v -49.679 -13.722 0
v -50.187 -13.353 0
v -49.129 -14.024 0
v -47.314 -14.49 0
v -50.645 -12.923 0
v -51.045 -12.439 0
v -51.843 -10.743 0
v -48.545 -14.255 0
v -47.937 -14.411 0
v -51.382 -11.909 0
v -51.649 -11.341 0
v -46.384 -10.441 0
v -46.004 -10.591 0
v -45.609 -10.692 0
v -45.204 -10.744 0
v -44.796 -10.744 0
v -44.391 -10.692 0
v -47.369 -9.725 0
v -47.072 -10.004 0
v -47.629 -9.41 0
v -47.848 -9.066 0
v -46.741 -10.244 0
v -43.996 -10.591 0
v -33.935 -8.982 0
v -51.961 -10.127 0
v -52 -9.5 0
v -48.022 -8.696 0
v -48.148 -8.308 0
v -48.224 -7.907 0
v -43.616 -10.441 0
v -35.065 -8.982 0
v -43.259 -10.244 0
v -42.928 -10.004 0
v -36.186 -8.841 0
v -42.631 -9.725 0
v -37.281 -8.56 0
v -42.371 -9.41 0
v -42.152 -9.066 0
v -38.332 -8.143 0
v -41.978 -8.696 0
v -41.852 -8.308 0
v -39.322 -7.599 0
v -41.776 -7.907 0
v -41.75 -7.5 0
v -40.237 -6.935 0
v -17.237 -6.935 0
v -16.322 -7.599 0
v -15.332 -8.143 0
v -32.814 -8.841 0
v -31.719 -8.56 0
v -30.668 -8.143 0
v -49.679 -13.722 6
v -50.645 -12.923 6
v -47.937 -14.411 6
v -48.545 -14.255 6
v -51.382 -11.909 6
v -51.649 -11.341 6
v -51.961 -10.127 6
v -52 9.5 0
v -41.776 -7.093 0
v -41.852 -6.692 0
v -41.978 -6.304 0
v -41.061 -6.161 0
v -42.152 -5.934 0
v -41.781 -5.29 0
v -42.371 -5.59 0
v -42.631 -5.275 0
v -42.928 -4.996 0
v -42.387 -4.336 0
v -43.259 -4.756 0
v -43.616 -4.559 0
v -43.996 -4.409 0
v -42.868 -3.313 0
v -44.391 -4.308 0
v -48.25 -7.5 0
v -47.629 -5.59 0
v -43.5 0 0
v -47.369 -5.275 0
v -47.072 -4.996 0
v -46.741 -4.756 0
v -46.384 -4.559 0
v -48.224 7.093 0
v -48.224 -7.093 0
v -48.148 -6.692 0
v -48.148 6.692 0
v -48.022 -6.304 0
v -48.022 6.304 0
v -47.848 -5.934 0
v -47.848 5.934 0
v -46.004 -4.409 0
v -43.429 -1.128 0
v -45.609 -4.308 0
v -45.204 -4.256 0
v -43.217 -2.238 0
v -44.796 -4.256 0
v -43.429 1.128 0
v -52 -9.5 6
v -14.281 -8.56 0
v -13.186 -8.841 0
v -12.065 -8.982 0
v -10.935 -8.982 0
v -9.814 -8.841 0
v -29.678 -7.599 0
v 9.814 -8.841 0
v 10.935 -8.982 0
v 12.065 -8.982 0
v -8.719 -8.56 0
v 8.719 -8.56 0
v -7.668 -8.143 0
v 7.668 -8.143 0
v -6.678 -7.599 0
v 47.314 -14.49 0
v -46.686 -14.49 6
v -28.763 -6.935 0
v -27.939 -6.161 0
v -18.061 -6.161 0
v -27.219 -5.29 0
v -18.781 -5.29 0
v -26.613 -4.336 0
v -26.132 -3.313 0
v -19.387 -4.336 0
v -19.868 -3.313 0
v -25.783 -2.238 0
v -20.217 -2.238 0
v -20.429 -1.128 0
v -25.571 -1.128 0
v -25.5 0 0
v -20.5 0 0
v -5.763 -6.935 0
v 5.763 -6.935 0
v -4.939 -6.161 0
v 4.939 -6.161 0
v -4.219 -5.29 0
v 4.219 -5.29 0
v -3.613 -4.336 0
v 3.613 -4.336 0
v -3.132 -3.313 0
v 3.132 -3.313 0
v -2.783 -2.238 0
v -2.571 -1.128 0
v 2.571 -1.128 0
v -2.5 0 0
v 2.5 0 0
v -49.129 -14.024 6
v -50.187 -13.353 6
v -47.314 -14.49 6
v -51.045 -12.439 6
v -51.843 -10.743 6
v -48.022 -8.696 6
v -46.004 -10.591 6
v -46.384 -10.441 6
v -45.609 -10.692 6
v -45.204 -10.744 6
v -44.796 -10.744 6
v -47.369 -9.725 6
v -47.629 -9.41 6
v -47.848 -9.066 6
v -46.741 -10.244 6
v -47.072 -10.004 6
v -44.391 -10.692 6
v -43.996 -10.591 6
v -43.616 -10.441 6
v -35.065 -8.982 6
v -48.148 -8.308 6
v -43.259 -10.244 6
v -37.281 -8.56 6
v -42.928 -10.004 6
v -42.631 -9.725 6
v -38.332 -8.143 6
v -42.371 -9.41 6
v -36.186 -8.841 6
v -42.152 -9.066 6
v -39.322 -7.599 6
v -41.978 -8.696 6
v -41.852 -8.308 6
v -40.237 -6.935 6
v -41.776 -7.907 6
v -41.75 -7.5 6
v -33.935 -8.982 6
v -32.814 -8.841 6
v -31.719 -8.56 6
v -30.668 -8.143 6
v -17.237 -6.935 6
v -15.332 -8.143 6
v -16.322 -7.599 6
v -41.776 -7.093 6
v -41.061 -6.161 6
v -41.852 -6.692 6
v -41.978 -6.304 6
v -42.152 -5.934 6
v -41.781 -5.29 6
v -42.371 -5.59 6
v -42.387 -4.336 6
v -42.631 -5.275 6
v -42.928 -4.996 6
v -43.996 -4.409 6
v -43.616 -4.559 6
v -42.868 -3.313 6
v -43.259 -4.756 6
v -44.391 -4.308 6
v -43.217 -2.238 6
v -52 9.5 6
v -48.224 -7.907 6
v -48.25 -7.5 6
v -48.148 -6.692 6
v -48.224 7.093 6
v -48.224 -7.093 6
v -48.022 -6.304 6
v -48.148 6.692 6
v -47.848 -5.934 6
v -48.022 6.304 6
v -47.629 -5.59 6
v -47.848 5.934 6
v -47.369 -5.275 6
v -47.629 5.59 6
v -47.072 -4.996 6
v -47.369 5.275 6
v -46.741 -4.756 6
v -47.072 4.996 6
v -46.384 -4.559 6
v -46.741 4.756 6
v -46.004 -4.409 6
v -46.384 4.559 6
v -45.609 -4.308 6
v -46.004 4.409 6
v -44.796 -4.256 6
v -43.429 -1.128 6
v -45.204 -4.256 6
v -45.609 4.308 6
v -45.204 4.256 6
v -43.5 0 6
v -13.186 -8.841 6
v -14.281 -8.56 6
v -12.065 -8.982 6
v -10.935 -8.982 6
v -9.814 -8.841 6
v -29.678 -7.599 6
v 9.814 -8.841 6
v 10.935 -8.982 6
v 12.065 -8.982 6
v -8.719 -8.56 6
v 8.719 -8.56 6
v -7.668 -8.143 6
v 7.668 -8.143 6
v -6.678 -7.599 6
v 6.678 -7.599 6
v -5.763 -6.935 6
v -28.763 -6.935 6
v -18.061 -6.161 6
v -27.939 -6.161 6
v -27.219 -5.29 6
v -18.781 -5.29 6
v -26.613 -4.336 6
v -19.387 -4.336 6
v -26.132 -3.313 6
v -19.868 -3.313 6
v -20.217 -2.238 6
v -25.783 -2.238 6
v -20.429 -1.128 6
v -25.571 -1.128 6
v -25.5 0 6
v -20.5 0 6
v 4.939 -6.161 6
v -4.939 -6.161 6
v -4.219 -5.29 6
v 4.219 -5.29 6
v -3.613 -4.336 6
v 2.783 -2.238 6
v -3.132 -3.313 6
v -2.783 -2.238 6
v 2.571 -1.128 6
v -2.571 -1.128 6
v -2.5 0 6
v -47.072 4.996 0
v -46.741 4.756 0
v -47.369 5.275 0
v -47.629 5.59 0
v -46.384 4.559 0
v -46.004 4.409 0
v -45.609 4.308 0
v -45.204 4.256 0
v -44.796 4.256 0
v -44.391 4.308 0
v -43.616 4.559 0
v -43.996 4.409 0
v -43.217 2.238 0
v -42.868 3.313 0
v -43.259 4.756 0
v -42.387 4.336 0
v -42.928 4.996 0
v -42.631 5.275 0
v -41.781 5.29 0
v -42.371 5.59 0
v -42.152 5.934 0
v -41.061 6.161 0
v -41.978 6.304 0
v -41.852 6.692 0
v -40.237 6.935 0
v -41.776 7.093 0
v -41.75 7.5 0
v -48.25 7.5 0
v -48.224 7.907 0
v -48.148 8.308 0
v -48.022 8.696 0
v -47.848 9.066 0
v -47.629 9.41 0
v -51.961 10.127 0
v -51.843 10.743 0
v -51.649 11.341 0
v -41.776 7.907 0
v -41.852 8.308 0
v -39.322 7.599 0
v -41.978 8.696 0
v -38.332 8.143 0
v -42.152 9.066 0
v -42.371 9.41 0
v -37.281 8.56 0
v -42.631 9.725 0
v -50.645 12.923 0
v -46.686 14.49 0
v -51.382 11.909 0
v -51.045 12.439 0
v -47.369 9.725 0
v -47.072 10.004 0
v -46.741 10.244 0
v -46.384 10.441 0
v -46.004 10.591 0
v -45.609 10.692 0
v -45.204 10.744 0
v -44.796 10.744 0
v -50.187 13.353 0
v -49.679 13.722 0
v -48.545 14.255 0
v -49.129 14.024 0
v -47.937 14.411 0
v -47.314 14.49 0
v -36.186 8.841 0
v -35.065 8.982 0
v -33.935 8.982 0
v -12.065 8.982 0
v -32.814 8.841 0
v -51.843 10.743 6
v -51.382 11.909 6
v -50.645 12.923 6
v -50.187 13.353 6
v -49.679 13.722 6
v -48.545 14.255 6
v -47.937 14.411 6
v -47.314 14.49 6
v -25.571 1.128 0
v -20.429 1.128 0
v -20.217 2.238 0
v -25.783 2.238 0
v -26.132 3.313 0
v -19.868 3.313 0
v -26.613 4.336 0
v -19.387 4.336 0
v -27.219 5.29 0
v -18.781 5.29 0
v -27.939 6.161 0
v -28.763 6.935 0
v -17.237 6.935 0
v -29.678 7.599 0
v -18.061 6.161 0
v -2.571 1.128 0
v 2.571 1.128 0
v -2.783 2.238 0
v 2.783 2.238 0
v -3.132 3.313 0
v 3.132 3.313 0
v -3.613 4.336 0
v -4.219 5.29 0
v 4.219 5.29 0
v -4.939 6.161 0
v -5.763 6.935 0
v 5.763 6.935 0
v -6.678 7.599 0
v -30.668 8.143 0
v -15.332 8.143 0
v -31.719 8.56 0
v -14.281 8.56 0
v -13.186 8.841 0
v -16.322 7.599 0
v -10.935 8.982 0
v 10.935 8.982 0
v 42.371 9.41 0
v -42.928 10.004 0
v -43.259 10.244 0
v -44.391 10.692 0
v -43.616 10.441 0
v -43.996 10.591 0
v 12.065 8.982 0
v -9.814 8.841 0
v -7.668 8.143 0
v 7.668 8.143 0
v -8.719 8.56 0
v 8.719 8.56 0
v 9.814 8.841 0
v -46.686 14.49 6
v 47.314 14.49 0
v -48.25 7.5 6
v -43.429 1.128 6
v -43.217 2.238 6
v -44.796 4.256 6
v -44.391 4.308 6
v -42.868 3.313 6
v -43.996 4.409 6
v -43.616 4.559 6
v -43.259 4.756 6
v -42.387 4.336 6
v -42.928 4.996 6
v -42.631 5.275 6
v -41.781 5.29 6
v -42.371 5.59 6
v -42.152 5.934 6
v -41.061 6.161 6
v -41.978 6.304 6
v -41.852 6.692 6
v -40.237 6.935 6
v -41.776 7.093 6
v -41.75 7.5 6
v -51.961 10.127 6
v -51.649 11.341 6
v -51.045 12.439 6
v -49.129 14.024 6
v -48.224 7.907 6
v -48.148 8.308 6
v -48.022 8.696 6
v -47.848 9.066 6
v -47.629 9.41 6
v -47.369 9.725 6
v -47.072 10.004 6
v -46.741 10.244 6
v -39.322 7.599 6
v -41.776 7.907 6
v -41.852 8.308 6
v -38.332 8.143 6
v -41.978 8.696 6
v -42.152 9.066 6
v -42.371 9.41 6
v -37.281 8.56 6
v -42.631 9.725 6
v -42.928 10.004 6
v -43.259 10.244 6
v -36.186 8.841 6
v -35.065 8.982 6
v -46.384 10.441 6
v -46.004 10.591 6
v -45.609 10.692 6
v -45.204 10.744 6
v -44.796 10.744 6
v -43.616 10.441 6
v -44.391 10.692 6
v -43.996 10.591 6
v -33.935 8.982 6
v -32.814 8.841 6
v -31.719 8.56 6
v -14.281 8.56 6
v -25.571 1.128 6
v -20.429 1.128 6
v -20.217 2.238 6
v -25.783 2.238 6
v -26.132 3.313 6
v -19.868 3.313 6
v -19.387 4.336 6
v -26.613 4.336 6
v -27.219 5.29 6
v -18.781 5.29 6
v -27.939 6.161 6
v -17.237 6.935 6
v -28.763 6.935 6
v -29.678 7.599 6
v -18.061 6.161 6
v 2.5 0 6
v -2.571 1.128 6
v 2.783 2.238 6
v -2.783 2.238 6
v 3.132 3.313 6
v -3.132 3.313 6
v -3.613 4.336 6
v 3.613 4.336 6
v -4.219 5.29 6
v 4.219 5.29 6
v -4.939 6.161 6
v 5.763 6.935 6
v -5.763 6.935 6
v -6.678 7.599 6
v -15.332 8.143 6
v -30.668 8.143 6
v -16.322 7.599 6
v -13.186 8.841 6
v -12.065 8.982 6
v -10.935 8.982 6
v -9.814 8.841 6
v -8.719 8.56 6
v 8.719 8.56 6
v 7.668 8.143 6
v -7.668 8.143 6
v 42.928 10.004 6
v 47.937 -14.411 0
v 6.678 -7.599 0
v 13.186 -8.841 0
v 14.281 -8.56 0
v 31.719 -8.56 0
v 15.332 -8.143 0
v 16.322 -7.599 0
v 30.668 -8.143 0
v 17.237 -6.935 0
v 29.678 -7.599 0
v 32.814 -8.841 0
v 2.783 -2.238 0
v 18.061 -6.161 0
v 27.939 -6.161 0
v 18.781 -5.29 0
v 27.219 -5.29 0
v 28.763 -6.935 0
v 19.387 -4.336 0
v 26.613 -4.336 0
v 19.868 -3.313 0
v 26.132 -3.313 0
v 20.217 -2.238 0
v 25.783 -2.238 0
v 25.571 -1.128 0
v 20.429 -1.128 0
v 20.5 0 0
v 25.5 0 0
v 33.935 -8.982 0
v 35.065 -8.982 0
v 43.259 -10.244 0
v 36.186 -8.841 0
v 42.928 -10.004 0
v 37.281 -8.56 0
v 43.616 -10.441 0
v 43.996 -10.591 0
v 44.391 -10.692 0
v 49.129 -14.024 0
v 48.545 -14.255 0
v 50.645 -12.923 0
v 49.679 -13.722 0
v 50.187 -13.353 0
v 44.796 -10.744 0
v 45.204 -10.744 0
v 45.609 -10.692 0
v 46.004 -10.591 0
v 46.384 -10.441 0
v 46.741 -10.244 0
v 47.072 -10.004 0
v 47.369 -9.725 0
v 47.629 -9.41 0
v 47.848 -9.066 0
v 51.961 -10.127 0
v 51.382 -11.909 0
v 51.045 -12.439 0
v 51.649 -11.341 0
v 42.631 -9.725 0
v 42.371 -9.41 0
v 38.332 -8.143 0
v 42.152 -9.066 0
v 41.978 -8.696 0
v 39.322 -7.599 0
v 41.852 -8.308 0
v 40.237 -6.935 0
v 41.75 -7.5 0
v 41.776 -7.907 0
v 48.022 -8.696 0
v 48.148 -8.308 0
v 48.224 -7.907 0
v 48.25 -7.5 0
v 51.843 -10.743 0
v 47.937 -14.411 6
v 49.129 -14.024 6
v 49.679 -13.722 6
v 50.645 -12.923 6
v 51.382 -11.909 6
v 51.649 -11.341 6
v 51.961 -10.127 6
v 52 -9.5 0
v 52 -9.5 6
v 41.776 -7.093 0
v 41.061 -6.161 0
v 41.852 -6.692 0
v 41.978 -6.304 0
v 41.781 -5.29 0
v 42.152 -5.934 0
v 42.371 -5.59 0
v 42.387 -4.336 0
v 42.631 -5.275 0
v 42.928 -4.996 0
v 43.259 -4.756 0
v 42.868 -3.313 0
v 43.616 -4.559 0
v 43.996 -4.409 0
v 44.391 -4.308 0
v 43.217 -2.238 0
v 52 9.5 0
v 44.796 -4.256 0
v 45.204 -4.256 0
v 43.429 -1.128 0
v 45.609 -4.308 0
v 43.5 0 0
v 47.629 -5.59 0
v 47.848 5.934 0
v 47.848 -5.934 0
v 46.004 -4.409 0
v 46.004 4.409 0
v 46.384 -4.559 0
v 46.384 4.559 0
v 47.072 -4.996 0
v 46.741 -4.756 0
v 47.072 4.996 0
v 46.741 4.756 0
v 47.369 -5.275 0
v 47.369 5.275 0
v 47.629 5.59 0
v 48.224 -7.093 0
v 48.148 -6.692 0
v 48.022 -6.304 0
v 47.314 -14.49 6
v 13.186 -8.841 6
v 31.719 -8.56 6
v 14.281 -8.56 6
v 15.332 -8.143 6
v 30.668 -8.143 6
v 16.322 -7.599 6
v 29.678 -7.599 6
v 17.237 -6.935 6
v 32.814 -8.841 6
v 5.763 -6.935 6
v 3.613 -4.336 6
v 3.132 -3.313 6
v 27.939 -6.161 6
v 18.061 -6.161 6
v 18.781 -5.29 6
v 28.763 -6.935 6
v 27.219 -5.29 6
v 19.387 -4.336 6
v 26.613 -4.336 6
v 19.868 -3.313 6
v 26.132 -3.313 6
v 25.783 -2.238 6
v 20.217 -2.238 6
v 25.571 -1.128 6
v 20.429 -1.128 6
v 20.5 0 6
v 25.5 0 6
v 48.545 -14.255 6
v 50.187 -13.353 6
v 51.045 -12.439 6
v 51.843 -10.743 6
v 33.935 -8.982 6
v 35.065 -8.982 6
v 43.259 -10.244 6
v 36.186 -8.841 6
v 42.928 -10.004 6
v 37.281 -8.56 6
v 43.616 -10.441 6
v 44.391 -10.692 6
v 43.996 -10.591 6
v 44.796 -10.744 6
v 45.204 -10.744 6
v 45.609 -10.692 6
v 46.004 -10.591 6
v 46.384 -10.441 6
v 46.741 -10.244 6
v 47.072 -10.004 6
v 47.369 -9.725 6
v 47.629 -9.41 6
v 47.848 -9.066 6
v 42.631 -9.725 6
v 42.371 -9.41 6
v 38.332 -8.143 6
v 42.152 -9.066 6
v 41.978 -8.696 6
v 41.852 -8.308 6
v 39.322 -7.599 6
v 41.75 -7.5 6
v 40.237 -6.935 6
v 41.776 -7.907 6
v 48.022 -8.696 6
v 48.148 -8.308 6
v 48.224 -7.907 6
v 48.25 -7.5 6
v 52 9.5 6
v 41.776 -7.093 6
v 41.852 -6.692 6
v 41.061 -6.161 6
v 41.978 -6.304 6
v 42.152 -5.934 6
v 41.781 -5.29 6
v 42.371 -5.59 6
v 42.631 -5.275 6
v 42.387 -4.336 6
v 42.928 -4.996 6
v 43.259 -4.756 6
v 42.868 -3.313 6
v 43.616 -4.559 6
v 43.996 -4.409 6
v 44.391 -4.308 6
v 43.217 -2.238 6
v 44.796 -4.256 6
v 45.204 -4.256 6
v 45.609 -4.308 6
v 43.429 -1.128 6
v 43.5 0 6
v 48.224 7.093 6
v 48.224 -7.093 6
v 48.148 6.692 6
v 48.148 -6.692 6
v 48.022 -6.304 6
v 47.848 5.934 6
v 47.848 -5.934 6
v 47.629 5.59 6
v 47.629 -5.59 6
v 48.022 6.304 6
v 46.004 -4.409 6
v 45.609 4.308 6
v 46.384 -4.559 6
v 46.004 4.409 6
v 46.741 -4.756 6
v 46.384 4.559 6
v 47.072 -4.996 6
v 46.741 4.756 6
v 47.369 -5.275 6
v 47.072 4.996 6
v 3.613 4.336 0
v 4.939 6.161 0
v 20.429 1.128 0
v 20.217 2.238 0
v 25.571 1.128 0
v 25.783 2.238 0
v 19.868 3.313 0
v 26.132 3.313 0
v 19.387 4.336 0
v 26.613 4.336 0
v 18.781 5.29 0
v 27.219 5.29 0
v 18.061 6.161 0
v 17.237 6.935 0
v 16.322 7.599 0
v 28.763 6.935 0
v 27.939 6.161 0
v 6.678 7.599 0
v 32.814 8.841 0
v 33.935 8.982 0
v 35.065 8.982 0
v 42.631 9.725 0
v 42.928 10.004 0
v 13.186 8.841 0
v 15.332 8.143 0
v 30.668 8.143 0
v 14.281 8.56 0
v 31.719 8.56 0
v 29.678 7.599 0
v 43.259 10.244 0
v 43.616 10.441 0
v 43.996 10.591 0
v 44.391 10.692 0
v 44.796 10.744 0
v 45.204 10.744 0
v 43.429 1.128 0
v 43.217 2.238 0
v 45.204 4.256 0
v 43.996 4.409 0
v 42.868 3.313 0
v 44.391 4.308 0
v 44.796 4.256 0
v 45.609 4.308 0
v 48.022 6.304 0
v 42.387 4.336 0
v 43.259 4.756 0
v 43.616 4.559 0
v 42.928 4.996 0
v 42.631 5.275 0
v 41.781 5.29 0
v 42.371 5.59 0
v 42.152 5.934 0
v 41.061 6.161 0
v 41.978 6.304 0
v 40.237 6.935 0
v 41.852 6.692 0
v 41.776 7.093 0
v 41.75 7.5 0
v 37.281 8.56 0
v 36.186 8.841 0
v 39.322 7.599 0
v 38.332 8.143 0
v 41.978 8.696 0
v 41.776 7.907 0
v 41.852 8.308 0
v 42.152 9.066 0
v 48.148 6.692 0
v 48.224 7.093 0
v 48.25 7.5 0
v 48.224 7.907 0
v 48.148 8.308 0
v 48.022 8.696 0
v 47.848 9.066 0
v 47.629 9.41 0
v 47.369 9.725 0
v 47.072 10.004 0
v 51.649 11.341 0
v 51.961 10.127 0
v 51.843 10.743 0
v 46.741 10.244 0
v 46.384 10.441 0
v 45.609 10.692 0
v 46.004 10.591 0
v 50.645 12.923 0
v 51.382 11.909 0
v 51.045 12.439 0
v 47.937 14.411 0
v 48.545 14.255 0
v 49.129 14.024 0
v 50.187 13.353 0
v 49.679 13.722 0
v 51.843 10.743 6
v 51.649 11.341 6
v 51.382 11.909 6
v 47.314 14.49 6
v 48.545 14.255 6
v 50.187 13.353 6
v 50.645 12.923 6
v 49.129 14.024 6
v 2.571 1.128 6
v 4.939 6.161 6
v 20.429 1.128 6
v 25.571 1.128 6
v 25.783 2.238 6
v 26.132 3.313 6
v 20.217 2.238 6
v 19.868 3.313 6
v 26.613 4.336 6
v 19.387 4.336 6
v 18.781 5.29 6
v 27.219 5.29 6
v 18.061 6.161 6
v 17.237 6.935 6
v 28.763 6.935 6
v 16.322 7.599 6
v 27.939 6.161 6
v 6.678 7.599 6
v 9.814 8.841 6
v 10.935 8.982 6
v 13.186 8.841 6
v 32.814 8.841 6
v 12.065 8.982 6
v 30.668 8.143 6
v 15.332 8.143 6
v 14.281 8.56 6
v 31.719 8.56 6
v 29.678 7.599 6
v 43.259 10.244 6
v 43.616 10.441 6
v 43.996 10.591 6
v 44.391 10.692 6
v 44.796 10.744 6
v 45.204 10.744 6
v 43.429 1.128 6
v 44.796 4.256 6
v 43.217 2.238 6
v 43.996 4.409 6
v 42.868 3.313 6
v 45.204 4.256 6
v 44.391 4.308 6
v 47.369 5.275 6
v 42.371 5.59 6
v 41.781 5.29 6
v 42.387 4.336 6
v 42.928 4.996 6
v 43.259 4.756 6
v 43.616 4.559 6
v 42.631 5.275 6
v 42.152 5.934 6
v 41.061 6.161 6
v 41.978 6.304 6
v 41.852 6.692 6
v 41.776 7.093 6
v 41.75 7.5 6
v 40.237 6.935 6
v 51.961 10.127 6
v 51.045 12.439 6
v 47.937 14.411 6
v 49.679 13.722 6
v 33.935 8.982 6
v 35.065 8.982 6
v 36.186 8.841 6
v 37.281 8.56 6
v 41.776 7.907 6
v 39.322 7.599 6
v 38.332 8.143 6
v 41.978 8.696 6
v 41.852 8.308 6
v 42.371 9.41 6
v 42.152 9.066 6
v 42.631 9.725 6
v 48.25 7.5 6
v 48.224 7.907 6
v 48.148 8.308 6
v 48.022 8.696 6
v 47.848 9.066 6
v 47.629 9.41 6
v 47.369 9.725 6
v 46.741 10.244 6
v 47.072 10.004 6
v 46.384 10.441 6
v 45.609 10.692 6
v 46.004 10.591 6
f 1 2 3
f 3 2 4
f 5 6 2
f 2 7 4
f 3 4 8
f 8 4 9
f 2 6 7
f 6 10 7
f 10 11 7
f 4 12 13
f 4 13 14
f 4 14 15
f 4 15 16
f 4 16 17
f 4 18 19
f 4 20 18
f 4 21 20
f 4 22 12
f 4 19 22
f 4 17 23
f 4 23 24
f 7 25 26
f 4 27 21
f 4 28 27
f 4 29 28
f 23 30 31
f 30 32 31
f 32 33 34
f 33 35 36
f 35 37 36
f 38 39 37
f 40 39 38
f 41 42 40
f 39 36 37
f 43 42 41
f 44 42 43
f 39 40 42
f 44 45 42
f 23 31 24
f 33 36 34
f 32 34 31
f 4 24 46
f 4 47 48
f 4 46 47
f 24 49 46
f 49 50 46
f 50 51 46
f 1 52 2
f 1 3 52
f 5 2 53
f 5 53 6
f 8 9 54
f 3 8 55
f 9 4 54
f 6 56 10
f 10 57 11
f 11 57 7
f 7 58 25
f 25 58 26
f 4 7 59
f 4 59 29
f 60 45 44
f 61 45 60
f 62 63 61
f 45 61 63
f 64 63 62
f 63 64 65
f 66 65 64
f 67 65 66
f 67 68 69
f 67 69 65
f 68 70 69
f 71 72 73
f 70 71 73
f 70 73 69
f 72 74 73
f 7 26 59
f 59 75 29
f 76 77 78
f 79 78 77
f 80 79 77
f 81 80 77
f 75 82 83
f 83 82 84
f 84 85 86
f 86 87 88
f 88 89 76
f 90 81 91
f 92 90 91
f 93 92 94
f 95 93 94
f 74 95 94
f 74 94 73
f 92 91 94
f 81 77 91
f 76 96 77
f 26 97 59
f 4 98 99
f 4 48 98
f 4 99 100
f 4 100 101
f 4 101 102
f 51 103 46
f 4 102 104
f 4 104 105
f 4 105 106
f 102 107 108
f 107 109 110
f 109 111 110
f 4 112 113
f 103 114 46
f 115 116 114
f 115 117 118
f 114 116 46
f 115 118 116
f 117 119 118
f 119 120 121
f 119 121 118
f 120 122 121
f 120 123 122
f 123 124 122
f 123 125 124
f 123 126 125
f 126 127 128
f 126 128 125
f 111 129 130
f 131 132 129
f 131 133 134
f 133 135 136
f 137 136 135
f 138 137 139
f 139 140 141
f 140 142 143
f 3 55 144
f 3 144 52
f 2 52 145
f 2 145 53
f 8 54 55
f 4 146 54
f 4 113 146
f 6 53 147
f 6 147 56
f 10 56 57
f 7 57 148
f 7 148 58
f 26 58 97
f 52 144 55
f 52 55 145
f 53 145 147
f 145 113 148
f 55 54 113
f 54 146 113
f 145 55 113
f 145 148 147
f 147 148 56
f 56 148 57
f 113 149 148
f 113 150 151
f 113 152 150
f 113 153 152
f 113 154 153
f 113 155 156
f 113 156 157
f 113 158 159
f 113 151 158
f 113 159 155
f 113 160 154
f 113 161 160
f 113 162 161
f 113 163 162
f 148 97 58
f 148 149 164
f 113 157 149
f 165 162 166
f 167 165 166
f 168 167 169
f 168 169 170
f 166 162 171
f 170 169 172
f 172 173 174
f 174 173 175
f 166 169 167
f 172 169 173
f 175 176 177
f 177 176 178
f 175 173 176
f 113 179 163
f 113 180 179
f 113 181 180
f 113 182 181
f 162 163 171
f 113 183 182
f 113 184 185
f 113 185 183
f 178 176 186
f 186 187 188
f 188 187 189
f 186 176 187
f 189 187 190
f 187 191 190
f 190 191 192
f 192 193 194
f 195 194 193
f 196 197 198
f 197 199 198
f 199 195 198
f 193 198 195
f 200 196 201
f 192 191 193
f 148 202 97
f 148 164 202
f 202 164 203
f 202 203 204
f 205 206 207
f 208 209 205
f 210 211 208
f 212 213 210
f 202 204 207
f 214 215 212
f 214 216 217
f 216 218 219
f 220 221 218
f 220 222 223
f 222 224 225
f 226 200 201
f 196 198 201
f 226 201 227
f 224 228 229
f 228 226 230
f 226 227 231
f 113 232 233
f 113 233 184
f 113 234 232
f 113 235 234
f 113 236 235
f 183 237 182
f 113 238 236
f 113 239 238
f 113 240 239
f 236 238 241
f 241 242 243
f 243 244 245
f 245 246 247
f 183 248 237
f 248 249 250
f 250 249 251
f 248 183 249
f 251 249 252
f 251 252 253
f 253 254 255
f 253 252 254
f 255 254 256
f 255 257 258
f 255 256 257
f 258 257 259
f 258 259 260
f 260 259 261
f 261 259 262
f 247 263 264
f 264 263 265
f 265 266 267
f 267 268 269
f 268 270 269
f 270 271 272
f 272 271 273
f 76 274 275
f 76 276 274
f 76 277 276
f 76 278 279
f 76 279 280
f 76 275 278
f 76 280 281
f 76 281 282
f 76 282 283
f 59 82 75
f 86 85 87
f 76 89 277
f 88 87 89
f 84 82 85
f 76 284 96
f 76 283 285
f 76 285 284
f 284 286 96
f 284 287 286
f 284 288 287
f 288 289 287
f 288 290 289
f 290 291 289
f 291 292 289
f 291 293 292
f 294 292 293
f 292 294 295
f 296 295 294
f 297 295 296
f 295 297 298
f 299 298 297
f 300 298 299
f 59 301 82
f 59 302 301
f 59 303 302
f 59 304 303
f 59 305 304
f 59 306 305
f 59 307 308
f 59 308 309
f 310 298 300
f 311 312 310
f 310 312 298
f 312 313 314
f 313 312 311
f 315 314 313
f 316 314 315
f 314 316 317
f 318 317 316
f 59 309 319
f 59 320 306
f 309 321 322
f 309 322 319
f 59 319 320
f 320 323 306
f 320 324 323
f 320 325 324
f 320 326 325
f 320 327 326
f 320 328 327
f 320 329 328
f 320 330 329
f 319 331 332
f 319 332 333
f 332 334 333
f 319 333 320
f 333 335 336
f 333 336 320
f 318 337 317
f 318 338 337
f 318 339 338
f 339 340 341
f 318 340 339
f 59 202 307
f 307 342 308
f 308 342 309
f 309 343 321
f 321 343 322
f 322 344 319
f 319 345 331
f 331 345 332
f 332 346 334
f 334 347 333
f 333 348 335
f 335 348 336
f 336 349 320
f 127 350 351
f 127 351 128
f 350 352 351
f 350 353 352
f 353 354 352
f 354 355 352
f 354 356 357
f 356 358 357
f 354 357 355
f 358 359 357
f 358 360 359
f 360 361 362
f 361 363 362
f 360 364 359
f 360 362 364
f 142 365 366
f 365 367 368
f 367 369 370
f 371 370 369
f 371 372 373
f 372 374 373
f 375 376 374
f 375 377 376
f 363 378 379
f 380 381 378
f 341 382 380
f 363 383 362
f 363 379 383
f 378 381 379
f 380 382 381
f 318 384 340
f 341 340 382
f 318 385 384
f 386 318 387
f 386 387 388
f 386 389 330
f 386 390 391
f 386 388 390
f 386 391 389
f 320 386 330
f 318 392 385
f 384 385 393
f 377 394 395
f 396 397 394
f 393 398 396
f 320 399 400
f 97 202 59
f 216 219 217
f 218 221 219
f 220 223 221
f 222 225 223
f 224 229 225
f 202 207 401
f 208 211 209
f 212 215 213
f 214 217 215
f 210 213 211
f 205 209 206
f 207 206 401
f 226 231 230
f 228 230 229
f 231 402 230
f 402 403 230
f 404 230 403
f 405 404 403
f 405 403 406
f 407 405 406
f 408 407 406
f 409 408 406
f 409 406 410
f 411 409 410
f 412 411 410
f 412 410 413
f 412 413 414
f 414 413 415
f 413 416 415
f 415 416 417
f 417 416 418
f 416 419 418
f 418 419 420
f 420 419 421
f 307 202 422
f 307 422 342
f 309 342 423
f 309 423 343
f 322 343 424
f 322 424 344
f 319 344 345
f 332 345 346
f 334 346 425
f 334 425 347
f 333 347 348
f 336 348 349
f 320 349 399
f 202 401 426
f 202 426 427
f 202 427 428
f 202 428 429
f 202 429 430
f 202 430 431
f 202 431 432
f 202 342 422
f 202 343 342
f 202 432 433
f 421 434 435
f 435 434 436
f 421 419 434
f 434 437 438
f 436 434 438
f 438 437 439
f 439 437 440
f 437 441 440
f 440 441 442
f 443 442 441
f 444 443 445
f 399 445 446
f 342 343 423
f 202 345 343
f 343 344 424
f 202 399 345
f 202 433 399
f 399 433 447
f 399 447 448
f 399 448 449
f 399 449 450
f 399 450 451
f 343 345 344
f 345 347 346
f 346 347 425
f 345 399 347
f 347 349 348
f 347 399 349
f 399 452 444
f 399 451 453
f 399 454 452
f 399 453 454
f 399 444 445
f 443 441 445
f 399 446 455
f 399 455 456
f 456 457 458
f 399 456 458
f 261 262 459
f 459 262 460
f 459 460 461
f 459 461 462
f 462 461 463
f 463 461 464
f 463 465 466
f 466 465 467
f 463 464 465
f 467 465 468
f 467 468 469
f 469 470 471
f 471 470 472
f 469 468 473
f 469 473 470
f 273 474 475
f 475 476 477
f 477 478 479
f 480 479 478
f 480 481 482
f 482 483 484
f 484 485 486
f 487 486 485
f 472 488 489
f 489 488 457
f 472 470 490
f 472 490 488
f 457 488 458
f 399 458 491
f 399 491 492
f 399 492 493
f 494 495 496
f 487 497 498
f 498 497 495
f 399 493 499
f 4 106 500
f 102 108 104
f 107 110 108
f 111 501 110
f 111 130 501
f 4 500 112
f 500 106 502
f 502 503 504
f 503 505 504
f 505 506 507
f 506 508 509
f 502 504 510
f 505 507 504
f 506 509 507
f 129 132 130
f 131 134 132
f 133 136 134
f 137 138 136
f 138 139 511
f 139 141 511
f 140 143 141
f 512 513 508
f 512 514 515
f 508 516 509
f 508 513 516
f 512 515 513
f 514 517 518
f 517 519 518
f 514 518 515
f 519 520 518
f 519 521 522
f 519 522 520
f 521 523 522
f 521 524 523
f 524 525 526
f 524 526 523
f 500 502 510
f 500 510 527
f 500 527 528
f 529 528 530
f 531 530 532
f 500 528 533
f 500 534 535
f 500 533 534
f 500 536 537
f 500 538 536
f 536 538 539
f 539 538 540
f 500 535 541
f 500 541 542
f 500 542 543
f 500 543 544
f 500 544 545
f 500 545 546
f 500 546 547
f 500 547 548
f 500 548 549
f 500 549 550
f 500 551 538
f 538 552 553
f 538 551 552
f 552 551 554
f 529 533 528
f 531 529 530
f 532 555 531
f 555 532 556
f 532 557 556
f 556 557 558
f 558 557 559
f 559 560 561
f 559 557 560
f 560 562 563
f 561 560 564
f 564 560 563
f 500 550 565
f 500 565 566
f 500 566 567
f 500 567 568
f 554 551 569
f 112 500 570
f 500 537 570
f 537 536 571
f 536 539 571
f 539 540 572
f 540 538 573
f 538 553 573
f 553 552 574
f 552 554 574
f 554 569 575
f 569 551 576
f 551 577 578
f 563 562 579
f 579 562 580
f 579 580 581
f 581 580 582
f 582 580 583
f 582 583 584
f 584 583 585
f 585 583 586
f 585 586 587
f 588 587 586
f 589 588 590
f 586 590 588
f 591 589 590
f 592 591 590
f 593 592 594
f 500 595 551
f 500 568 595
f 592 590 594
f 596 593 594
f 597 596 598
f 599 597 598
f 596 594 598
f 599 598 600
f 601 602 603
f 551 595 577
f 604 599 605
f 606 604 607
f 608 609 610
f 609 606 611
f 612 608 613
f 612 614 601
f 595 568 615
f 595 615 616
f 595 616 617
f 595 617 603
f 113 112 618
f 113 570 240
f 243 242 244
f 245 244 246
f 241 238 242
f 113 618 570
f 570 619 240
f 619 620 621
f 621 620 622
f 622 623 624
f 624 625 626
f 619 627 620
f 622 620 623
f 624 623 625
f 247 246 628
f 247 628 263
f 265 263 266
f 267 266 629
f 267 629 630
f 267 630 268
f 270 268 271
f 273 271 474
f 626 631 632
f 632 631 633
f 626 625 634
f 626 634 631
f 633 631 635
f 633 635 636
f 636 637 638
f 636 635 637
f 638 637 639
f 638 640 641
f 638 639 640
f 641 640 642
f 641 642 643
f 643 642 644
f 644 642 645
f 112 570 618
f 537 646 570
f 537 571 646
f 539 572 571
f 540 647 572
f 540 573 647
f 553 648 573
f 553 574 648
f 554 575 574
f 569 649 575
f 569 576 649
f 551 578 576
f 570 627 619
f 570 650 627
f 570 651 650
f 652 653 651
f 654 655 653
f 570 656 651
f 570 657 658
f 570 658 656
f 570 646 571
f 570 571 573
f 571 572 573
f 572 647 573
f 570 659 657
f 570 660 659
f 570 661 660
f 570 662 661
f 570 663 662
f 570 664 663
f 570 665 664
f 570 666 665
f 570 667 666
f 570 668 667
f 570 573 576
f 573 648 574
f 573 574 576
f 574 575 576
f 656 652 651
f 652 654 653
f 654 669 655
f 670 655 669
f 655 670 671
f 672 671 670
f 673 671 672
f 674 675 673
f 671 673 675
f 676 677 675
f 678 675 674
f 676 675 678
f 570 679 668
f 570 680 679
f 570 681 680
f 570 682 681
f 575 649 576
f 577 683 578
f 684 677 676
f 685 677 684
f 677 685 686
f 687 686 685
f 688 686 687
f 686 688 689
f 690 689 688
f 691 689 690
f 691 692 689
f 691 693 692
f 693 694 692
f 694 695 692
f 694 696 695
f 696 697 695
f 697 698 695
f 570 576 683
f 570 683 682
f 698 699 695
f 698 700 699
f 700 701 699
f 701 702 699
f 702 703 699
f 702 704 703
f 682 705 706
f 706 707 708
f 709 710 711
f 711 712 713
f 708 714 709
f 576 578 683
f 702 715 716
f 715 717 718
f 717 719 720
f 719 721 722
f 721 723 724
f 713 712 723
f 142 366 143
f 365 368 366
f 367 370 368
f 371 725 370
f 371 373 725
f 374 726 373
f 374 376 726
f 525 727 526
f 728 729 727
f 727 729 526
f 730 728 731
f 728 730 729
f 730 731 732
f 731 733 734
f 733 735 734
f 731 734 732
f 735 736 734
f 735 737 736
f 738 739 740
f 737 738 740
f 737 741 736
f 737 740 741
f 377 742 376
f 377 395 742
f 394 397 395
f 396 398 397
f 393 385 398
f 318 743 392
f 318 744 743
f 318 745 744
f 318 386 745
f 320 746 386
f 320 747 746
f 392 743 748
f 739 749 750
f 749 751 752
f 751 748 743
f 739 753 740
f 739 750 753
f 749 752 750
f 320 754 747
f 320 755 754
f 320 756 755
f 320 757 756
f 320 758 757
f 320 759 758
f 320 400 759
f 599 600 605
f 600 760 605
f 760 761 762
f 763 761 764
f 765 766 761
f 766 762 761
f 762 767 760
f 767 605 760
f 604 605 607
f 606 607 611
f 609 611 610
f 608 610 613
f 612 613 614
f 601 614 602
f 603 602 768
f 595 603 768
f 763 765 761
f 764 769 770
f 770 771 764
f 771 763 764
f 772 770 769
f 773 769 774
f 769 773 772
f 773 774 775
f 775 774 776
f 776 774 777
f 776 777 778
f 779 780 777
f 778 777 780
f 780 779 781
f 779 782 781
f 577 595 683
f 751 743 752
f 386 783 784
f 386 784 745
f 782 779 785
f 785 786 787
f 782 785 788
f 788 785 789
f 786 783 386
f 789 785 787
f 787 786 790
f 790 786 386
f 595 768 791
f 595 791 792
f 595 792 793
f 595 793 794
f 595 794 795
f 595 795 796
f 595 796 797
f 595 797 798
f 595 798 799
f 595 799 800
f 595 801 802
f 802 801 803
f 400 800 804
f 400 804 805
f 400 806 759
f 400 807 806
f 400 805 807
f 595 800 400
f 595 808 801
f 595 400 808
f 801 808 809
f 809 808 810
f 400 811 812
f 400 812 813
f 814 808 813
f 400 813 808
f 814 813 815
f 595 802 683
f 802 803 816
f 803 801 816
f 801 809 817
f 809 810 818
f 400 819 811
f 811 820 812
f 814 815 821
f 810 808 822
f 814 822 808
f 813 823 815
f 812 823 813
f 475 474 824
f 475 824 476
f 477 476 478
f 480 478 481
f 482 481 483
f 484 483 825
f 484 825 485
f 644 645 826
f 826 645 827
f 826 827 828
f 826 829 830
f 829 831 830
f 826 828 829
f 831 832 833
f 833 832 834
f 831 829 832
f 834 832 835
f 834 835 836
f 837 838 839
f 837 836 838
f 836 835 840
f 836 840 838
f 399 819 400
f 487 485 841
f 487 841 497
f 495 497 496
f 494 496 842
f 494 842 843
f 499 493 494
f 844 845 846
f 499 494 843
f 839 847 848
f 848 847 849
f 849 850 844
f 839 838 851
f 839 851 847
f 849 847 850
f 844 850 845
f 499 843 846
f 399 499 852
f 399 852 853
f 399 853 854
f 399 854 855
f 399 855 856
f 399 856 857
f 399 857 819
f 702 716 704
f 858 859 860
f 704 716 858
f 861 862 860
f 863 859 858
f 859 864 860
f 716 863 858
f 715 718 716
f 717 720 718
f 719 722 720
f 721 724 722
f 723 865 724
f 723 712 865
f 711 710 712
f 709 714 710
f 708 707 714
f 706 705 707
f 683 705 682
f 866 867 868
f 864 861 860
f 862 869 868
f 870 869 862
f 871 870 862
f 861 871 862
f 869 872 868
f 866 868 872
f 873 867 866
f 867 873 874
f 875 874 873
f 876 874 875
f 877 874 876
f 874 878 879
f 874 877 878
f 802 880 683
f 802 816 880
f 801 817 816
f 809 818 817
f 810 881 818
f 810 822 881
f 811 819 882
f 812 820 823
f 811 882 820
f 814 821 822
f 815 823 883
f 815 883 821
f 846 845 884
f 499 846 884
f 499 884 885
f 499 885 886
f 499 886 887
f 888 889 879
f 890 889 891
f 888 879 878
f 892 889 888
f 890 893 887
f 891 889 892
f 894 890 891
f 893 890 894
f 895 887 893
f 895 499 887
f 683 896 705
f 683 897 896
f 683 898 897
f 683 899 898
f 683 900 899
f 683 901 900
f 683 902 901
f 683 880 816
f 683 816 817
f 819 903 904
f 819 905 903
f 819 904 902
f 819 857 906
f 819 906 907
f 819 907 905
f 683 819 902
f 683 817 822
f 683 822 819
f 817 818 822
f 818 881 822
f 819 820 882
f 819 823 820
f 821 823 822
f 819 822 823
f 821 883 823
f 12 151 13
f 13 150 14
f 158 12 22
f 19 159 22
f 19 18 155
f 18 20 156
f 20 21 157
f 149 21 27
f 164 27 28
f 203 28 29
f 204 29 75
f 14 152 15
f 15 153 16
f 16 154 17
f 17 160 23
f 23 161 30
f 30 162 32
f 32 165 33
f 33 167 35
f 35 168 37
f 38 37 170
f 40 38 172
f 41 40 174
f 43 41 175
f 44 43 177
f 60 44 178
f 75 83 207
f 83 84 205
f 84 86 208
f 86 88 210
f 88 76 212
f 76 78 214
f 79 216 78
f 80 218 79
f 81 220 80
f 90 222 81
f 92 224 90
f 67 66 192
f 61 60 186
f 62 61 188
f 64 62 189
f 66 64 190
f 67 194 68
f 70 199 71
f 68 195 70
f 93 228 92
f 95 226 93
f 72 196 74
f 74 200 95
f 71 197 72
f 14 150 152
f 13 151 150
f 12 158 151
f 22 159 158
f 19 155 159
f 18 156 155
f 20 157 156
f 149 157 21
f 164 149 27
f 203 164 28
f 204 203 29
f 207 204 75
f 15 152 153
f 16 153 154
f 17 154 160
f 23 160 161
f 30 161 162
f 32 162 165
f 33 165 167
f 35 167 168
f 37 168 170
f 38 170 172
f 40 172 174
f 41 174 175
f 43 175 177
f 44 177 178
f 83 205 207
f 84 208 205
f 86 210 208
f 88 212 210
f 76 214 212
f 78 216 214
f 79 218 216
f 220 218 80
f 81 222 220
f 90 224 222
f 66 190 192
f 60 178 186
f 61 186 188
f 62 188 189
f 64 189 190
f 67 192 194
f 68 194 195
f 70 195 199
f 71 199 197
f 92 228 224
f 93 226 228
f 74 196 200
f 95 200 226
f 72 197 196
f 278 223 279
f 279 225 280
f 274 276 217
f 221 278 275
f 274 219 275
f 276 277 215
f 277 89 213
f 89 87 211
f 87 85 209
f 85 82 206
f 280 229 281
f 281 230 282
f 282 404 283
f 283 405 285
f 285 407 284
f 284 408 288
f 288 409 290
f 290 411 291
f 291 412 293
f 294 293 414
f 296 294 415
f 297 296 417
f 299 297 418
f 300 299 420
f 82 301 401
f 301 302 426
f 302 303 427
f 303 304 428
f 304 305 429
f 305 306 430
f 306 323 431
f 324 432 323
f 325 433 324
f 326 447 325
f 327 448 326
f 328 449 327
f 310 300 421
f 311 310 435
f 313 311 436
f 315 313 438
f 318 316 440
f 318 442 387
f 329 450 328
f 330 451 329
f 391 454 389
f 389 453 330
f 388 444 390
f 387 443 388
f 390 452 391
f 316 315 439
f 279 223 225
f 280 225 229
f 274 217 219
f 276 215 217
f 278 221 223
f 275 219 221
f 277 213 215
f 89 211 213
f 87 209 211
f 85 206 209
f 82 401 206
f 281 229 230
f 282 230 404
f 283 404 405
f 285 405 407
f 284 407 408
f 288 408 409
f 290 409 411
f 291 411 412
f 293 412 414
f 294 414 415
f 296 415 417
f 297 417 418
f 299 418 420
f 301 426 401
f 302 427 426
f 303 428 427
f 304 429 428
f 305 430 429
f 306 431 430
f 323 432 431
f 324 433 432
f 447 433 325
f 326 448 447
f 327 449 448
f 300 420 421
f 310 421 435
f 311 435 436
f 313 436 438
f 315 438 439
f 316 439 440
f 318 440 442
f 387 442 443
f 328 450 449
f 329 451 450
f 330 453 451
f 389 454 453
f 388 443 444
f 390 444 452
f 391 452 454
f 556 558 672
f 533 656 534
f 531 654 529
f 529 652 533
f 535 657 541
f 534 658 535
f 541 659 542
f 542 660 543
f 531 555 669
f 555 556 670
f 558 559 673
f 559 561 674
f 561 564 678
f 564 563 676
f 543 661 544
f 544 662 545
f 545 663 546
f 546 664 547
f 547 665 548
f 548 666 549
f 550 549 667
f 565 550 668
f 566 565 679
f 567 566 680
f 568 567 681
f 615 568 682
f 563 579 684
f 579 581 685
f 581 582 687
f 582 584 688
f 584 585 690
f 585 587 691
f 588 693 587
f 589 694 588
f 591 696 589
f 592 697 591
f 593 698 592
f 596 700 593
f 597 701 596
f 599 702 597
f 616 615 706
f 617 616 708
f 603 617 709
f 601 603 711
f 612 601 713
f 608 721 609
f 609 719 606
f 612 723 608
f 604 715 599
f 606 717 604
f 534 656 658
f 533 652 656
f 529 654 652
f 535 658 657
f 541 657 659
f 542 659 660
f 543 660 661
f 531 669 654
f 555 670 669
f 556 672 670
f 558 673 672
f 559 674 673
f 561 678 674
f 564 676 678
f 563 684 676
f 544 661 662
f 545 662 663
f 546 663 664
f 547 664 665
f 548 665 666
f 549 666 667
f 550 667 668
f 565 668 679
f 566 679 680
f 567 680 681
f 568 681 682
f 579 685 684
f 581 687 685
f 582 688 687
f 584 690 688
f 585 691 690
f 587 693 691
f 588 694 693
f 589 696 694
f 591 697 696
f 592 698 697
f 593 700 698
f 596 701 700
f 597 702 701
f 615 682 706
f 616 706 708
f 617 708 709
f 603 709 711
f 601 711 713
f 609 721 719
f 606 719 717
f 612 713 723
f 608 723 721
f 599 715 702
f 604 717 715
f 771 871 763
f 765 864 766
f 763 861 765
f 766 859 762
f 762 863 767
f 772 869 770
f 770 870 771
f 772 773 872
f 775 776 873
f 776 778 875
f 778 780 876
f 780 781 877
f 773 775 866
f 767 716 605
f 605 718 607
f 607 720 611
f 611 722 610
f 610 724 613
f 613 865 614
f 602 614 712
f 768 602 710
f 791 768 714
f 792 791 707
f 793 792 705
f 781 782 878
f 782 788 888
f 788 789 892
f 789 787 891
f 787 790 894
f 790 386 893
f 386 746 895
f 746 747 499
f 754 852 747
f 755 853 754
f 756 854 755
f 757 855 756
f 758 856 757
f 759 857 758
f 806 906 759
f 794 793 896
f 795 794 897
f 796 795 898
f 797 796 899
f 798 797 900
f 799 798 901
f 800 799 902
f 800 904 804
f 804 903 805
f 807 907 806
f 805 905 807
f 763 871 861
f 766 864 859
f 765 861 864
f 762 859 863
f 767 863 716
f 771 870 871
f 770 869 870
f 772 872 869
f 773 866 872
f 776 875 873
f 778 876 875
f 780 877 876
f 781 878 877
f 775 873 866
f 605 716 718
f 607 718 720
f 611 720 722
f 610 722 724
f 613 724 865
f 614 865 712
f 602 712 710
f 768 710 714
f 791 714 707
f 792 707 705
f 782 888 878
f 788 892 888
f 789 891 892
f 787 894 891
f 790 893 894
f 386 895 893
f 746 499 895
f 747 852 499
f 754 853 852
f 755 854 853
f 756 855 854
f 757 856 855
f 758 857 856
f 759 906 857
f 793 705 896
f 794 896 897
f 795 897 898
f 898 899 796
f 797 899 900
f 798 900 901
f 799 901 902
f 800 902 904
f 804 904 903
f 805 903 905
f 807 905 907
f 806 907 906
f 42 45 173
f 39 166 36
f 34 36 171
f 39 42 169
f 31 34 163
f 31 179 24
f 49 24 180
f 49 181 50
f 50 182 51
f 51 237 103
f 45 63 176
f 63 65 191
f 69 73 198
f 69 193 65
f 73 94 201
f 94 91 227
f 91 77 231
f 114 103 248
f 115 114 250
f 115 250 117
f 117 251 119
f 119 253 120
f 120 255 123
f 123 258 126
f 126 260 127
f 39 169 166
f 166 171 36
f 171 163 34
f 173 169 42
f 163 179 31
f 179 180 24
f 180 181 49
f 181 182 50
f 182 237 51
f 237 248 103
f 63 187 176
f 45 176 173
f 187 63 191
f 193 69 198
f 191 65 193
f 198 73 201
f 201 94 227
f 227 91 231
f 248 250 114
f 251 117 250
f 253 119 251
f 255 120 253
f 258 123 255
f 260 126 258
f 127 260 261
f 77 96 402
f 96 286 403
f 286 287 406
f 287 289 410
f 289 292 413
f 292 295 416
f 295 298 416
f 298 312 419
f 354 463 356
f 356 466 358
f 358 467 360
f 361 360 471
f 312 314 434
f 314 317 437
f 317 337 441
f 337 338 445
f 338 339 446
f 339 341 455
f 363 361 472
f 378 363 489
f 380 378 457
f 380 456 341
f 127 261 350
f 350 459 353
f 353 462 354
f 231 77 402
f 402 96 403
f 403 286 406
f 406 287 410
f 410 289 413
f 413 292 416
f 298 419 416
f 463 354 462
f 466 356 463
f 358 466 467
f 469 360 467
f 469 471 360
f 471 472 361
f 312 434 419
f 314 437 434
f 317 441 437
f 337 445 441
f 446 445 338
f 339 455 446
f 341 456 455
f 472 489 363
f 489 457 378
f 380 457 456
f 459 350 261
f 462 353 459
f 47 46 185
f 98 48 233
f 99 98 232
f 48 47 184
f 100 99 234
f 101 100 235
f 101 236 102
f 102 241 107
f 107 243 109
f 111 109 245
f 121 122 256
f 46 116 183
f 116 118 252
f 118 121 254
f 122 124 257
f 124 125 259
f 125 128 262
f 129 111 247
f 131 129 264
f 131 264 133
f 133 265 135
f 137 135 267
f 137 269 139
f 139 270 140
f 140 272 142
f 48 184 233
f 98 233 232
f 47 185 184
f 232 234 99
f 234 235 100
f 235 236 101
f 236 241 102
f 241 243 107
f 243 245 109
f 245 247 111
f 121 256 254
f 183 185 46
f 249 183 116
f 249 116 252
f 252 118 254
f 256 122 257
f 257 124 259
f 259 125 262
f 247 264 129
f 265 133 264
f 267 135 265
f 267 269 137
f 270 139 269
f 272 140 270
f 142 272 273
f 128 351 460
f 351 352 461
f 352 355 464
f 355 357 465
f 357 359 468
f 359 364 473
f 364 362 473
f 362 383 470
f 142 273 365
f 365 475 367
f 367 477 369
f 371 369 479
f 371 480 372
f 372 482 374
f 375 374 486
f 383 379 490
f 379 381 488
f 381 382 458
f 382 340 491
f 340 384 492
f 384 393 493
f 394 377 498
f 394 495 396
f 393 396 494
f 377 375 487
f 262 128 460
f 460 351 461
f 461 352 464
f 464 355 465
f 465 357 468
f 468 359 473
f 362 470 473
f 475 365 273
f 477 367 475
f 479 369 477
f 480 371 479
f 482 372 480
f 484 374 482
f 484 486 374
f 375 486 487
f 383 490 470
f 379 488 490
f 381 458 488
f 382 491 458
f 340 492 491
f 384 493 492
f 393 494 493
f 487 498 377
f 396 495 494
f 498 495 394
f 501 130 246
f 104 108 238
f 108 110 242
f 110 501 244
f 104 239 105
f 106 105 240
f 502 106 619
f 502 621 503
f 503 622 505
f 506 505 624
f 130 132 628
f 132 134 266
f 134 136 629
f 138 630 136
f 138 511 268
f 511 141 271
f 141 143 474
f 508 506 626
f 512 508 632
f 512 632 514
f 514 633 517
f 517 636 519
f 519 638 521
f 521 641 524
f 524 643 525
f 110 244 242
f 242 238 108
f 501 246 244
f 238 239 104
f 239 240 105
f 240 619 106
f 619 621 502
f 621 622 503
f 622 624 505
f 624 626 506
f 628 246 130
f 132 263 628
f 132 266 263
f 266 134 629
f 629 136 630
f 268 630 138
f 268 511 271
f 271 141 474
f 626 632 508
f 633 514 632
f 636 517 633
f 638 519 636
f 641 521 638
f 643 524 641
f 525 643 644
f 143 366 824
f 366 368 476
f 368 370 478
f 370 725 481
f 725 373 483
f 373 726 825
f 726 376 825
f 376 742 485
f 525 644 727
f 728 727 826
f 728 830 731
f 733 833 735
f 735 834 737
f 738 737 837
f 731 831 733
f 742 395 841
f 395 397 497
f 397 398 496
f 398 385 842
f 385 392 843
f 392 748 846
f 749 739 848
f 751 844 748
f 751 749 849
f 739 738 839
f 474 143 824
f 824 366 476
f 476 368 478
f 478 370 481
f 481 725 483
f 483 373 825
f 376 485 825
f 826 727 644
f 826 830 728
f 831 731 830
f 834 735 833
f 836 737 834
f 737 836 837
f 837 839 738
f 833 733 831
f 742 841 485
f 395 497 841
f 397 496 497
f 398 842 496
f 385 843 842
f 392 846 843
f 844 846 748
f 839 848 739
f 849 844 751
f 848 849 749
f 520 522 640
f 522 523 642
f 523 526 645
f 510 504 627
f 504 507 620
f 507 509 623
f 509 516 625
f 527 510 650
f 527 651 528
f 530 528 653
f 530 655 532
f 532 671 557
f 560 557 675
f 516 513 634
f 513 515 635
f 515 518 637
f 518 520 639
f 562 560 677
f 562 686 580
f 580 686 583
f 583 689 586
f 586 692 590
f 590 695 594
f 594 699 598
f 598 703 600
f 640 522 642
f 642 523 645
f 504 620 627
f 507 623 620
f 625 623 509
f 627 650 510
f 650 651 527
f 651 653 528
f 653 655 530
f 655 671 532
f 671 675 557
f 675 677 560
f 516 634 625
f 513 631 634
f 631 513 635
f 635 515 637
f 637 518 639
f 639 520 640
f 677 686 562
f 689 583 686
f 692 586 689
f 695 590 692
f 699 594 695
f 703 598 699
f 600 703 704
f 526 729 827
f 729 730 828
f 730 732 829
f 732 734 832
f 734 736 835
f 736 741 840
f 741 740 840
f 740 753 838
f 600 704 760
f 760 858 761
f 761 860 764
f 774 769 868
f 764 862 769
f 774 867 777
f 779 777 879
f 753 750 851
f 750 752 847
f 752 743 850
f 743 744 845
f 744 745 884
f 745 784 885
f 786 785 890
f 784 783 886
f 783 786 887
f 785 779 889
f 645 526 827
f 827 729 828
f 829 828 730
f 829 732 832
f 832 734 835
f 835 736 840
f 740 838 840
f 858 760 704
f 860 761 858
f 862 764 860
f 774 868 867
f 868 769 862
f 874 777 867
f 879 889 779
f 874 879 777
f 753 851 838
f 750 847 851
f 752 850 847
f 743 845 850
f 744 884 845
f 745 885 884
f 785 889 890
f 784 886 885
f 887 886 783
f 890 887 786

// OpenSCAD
$fn = 50;

difference() {
	union() {
		hull() {
			translate(v = [-47.0, 9.5, 0]) {
				cylinder(h = 6, r = 5);
			}
			translate(v = [47.0, 9.5, 0]) {
				cylinder(h = 6, r = 5);
			}
			translate(v = [-47.0, -9.5, 0]) {
				cylinder(h = 6, r = 5);
			}
			translate(v = [47.0, -9.5, 0]) {
				cylinder(h = 6, r = 5);
			}
		}
	}
	union() {
		translate(v = [-45.0, -7.5, -100.0]) {
			cylinder(h = 200, r = 3.25);
		}
		translate(v = [-45.0, 7.5, -100.0]) {
			cylinder(h = 200, r = 3.25);
		}
		translate(v = [45.0, -7.5, -100.0]) {
			cylinder(h = 200, r = 3.25);
		}
		translate(v = [45.0, 7.5, -100.0]) {
			cylinder(h = 200, r = 3.25);
		}
		translate(v = [-45.0, -7.5, -100.0]) {
			cylinder(h = 200, r = 1.8);
		}
		translate(v = [-45.0, 7.5, -100.0]) {
			cylinder(h = 200, r = 1.8);
		}
		translate(v = [45.0, -7.5, -100.0]) {
			cylinder(h = 200, r = 1.8);
		}
		translate(v = [45.0, 7.5, -100.0]) {
			cylinder(h = 200, r = 1.8);
		}
		translate(v = [-34.5, 0, 0.0]) {
			cylinder(h = 6, r = 9.0);
		}
		translate(v = [-11.5, 0, 0.0]) {
			cylinder(h = 6, r = 9.0);
		}
		translate(v = [11.5, 0, 0.0]) {
			cylinder(h = 6, r = 9.0);
		}
		translate(v = [34.5, 0, 0.0]) {
			cylinder(h = 6, r = 9.0);
		}
	}
}
